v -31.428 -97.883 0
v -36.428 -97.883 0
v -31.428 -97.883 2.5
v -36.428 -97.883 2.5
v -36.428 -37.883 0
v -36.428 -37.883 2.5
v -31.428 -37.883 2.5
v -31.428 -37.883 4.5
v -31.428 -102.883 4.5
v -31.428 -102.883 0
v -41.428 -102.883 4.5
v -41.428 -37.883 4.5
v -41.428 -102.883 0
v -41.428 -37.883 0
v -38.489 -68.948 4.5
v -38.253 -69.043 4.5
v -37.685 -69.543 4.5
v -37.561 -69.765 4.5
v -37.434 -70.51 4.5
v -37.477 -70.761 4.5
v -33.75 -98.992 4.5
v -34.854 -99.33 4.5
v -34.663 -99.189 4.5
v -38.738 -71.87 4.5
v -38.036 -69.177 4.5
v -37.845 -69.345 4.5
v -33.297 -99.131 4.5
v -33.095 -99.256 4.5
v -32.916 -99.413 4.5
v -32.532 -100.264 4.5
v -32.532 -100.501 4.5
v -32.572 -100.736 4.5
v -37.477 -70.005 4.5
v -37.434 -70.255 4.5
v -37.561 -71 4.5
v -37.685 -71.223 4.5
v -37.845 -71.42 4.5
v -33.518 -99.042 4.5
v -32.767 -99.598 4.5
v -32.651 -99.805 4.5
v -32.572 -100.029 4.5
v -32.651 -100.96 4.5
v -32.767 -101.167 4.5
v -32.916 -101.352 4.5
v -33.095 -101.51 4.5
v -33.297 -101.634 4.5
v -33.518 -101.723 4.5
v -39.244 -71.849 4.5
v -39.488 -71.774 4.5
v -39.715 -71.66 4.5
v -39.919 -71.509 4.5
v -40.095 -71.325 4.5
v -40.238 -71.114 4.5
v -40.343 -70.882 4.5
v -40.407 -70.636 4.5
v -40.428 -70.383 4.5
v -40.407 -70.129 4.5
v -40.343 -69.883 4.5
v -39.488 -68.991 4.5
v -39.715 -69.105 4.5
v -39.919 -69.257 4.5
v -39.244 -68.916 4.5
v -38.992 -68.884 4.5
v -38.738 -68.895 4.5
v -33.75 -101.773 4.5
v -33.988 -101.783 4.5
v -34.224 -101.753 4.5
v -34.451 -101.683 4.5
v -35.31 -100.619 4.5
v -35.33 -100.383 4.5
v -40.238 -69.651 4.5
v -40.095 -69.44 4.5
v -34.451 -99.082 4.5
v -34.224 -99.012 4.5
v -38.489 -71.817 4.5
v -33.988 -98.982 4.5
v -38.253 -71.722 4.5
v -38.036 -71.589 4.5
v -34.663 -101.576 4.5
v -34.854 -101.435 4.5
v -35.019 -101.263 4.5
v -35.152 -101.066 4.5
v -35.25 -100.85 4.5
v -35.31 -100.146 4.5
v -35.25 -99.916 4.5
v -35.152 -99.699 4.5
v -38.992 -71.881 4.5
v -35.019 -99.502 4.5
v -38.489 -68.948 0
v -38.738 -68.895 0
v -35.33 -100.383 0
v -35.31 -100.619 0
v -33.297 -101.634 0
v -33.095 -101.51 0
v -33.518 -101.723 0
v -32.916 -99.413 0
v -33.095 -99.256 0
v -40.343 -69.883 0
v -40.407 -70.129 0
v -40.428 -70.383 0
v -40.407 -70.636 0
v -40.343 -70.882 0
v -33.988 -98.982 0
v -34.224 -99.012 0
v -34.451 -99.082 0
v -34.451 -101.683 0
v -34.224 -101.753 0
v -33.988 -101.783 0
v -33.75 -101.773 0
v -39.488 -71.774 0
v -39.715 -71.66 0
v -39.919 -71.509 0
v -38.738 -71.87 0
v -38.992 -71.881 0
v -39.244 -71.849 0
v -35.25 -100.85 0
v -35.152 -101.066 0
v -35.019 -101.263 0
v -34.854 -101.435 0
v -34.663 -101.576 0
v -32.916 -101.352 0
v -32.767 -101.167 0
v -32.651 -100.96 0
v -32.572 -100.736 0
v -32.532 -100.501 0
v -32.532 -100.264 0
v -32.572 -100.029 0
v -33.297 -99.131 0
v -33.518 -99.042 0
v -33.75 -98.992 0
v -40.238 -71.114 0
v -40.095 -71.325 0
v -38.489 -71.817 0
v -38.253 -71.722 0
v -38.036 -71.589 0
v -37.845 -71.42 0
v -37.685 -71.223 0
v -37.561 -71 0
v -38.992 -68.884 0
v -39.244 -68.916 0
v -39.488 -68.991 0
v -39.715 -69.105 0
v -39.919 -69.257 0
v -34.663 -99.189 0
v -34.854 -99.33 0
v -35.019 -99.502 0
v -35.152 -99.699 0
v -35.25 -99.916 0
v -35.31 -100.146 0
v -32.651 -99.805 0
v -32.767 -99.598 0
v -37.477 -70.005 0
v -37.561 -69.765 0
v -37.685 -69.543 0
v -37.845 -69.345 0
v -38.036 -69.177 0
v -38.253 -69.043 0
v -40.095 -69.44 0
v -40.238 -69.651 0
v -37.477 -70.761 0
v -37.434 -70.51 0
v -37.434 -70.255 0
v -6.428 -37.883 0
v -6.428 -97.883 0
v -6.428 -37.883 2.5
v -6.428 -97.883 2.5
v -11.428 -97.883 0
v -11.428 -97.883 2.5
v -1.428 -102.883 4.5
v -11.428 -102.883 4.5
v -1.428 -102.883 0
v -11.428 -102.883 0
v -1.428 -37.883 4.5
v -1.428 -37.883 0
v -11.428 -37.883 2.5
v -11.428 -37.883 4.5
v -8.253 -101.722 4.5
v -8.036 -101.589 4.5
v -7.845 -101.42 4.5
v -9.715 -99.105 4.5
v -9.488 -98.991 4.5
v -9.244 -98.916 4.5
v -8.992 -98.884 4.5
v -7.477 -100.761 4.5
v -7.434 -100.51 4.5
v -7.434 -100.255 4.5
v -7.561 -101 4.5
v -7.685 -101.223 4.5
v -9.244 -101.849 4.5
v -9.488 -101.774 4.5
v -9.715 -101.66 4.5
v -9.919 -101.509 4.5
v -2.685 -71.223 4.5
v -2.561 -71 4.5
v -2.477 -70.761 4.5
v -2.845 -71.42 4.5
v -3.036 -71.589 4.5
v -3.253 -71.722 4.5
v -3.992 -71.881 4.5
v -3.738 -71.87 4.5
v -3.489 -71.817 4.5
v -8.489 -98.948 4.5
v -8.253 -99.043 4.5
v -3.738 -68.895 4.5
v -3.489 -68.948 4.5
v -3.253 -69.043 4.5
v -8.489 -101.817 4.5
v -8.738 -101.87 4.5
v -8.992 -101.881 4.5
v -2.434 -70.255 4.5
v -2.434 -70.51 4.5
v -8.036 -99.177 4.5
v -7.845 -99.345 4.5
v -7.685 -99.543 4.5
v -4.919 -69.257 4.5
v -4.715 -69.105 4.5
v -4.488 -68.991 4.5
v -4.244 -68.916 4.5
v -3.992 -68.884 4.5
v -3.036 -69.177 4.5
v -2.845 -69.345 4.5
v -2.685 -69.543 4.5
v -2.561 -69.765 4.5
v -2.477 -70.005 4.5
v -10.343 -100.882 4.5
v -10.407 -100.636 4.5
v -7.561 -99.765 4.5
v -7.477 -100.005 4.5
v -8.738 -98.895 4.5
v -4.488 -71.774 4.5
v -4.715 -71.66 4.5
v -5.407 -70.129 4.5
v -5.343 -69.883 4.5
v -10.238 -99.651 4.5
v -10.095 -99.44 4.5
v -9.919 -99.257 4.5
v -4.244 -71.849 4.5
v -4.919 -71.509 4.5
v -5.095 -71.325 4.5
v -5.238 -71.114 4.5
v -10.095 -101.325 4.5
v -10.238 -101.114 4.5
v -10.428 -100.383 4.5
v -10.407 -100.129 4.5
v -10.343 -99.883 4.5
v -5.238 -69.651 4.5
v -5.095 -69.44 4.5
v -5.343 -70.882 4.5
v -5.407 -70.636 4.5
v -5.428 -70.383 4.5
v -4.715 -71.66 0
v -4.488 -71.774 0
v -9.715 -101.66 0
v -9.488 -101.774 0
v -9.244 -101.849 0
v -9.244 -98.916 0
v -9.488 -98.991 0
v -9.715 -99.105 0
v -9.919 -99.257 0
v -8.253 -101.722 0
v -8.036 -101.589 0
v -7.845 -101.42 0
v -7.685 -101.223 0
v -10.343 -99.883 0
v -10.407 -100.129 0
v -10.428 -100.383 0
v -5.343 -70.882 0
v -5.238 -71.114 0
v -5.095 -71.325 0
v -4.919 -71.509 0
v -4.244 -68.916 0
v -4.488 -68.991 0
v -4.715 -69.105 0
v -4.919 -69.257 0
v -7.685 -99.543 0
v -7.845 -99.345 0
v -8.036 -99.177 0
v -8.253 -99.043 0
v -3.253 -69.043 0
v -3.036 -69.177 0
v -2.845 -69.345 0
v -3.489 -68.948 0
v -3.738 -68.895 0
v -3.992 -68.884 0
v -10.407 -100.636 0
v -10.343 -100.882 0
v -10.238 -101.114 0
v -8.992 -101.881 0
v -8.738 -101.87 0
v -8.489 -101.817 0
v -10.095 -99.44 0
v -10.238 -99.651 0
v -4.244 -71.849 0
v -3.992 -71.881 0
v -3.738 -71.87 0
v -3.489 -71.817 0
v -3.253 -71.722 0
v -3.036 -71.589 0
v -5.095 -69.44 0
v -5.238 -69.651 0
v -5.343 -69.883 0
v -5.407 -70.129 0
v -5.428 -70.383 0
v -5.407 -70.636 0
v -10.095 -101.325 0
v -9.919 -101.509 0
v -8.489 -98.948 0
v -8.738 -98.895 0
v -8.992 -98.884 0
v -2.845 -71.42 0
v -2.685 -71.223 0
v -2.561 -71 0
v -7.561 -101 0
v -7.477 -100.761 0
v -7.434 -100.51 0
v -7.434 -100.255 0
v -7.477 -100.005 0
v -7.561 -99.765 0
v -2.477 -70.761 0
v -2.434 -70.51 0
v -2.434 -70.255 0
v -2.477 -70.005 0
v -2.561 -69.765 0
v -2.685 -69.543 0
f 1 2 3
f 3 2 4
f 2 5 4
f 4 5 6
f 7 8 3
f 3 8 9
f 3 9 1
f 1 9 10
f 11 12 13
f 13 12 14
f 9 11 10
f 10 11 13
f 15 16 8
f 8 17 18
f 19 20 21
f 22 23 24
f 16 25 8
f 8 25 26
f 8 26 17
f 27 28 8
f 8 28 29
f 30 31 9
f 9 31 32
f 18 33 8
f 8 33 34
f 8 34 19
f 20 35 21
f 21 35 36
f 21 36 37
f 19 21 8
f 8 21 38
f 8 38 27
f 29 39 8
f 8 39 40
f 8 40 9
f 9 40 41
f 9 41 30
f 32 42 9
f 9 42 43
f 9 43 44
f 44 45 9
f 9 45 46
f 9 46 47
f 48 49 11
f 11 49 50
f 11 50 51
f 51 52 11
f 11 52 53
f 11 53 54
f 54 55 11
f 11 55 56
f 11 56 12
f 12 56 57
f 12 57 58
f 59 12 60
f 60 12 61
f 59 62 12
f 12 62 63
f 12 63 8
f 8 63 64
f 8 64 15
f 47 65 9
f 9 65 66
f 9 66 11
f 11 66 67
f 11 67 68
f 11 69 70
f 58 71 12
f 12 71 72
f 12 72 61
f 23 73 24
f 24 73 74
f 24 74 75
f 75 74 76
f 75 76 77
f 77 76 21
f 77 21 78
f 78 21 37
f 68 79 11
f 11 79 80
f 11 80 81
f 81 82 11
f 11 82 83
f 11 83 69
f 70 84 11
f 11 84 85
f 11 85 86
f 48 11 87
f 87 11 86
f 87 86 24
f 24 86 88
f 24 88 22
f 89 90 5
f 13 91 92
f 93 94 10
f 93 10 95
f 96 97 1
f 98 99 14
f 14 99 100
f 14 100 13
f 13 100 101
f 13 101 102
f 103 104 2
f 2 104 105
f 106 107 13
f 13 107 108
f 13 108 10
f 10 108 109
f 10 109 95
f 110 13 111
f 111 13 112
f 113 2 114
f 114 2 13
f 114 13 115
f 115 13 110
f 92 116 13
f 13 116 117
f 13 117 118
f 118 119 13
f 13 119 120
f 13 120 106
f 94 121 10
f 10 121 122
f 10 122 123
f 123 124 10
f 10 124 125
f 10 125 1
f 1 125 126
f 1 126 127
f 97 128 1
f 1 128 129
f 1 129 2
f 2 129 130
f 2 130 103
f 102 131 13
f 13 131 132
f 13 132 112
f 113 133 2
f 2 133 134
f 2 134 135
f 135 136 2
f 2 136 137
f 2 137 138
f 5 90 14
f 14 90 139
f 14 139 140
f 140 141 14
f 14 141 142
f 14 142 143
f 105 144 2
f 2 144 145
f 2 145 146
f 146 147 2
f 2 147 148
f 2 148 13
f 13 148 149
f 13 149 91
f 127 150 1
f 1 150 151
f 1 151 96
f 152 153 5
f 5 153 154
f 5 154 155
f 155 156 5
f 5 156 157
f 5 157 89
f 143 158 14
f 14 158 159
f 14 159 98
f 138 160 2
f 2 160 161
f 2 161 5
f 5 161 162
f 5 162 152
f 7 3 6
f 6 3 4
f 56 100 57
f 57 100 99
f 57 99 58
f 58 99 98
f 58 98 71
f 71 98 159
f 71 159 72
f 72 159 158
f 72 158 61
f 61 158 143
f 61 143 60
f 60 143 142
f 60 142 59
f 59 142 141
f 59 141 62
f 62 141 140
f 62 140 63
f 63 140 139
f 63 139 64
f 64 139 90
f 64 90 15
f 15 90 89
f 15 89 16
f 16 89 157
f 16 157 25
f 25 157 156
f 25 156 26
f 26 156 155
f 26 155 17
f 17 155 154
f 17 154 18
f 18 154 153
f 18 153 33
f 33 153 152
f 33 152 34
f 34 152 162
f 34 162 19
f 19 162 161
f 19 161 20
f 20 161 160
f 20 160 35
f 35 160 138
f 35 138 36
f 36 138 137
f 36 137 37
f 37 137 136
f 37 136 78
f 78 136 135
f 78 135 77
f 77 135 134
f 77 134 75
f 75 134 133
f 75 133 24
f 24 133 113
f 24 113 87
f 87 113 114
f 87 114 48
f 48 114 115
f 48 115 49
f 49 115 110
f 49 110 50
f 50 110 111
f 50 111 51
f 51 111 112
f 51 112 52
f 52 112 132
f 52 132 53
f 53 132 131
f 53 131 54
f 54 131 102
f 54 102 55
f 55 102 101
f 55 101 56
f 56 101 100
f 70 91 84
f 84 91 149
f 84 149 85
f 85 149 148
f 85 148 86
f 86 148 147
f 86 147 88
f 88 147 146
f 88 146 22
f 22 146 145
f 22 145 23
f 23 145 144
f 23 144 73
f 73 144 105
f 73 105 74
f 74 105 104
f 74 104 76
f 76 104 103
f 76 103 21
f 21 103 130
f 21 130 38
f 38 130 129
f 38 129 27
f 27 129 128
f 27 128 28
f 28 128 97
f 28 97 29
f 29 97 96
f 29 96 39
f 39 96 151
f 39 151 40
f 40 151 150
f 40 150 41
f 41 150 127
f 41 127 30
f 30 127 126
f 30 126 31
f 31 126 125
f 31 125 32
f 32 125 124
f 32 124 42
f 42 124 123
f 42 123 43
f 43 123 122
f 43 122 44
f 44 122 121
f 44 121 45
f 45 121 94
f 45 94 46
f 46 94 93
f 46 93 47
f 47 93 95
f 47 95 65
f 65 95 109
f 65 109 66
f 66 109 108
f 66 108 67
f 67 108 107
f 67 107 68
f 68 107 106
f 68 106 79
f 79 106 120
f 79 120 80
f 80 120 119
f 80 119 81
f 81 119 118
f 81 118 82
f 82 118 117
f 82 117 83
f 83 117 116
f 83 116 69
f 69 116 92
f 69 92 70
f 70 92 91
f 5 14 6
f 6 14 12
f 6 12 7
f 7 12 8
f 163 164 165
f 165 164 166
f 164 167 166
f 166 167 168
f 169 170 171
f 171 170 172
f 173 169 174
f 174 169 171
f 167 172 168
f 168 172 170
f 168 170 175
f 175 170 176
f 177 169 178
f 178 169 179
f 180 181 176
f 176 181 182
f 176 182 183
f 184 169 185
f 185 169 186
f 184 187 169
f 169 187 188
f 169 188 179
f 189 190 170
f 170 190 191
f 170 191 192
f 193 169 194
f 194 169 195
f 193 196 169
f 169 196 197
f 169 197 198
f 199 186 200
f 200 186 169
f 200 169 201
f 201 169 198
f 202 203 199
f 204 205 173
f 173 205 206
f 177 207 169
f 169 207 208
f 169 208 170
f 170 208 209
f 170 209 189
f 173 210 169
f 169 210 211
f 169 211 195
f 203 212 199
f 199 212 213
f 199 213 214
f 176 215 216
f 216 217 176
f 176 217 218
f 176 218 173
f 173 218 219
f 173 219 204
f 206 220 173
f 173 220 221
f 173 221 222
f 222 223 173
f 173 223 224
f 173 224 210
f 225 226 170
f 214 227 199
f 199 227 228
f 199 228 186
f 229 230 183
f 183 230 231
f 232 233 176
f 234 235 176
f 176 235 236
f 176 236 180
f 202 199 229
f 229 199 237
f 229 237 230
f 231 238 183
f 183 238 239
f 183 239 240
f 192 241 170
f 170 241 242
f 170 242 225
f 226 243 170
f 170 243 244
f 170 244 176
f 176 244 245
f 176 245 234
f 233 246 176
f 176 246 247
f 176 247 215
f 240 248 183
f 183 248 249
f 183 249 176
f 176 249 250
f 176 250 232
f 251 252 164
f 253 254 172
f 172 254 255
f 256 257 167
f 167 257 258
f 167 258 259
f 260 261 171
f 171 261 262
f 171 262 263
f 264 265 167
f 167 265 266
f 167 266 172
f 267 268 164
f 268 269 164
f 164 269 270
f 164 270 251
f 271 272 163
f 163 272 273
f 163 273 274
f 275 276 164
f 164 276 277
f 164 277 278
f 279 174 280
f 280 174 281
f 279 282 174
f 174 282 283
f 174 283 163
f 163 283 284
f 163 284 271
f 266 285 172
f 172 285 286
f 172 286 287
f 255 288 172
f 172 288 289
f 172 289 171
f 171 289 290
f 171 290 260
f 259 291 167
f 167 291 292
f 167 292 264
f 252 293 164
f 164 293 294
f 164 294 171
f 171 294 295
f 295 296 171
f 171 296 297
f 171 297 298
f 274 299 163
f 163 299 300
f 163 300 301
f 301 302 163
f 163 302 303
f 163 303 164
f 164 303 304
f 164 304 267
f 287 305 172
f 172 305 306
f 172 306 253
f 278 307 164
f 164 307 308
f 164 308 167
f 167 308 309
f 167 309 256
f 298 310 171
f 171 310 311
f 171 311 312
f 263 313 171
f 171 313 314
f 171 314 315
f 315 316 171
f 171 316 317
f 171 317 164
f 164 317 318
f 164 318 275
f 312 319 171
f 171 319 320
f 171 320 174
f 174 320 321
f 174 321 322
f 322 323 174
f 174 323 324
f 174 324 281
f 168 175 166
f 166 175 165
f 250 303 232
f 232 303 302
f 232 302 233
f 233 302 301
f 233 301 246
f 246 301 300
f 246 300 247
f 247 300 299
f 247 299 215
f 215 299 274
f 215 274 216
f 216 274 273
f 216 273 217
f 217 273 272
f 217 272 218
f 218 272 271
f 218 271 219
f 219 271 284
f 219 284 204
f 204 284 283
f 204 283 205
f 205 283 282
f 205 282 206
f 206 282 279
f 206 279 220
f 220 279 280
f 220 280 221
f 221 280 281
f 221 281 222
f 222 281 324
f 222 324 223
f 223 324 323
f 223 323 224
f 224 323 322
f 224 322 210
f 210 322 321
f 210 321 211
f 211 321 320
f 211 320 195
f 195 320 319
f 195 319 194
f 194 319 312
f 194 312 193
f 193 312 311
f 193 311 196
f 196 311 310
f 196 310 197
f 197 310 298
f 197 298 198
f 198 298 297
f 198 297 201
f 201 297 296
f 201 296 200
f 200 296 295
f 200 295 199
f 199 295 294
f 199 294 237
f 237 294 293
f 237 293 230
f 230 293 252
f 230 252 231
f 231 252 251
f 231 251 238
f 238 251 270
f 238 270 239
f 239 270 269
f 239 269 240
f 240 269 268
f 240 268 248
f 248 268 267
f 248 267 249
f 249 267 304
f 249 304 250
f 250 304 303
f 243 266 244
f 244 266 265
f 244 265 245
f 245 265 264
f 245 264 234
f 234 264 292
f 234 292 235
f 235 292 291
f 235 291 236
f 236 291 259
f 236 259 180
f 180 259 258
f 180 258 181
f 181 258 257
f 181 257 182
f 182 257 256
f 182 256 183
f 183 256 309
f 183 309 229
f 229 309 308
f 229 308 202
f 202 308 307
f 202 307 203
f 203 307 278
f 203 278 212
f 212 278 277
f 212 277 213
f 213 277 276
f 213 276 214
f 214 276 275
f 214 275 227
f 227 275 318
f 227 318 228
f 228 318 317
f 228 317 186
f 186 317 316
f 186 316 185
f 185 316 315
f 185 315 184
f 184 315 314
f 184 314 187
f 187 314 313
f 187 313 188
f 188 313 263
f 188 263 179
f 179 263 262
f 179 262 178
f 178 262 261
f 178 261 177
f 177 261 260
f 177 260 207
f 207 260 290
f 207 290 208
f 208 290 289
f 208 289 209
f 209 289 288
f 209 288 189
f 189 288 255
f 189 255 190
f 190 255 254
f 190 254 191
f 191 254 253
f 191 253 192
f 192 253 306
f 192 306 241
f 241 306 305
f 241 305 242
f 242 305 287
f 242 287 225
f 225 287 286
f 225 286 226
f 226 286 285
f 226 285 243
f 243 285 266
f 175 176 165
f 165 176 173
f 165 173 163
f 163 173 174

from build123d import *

# Parameters (mm, degrees)
BOSS_EXTRUDE1_DEPTH   = 4.5
BOSS_EXTRUDE1_2_DEPTH = 4.5
SKETCH2_W             = 2
SKETCH2_H             = 30
BOSS_EXTRUDE2_DEPTH   = 5
SKETCH3_W             = 2
SKETCH3_H             = 30
BOSS_EXTRUDE3_DEPTH   = 5
SKETCH4_R             = 1.401658719
SKETCH4_R_2           = 1.5
CUT_EXTRUDE1_DEPTH    = 5.5
SKETCH5_R             = 1.5
CUT_EXTRUDE2_DEPTH    = 5.5
BOSS_EXTRUDE4_DEPTH   = 30
BOSS_EXTRUDE5_DEPTH   = 30


with BuildPart() as part:
    # Sketch1 → Boss-Extrude1 (new body)
    with BuildSketch(Plane.XY):
        Polygon((-36.428241885, -97.882571264), (-36.428241885, -72.882571264), (-36.428241885, -67.882571264), (-41.428241885, -67.882571264), (-41.428241885, -72.882571264), (-41.428241885, -102.882571264), (-36.428241885, -102.882571264), (-31.428241885, -102.882571264), (-31.428241885, -97.882571264), align=None)
    extrude(amount=BOSS_EXTRUDE1_DEPTH)

    # Sketch3 → Boss-Extrude3 (add)
    with BuildSketch(Plane(origin=(-36.428241885, 0, 0), x_dir=(0, 0, -1), z_dir=(1, 0, 0))):
        with Locations((-3.5, -82.882571264)):
            Rectangle(SKETCH3_W, SKETCH3_H)
    extrude(amount=BOSS_EXTRUDE3_DEPTH)

    # Sketch4 → Cut-Extrude1 (cut, through all)
    with BuildSketch(Plane(origin=(0, 0, 0), x_dir=(-1, 0, 0), z_dir=(0, 0, -1))):
        with Locations((33.928241885, -100.382571264)):
            Circle(SKETCH4_R)
        with Locations((38.928241885, -70.382571264)):
            Circle(SKETCH4_R_2)
    extrude(amount=-CUT_EXTRUDE1_DEPTH, mode=Mode.SUBTRACT)

    # Sketch6 → Boss-Extrude4 (add)
    with BuildSketch(Plane(origin=(0, -67.882571264, 0), x_dir=(1, 0, 0), z_dir=(0, 1, 0))):
        Polygon((-36.428241885, 0), (-41.428241885, 0), (-41.428241885, -4.5), (-31.428241885, -4.5), (-31.428241885, -2.5), (-36.428241885, -2.5), align=None)
    extrude(amount=BOSS_EXTRUDE4_DEPTH)


with BuildPart() as body_2:
    # Sketch1 → Boss-Extrude1 2 (new body)
    with BuildSketch(Plane.XY):
        Polygon((-6.428241885, -97.882571264), (-6.428241885, -72.882571264), (-6.428241885, -67.882571264), (-1.428241885, -67.882571264), (-1.428241885, -72.882571264), (-1.428241885, -102.882571264), (-6.428241885, -102.882571264), (-11.428241885, -102.882571264), (-11.428241885, -97.882571264), align=None)
    extrude(amount=BOSS_EXTRUDE1_2_DEPTH)

    # Sketch2 → Boss-Extrude2 (add)
    with BuildSketch(Plane.ZY.offset(6.428241885)):
        with Locations((3.5, -82.882571264)):
            Rectangle(SKETCH2_W, SKETCH2_H)
    extrude(amount=BOSS_EXTRUDE2_DEPTH)

    # Sketch5 → Cut-Extrude2 (cut, through all)
    with BuildSketch(Plane(origin=(0, 0, 0), x_dir=(-1, 0, 0), z_dir=(0, 0, -1))):
        with Locations((8.928241885, -100.382571264)):
            Circle(SKETCH5_R)
        with Locations((3.928241885, -70.382571264)):
            Circle(SKETCH5_R)
    extrude(amount=-CUT_EXTRUDE2_DEPTH, mode=Mode.SUBTRACT)

    # Sketch7 → Boss-Extrude5 (add)
    with BuildSketch(Plane(origin=(0, -67.882571264, 0), x_dir=(1, 0, 0), z_dir=(0, 1, 0))):
        Polygon((-1.428241885, 0), (-6.428241885, 0), (-6.428241885, -2.5), (-11.428241885, -2.5), (-11.428241885, -4.5), (-1.428241885, -4.5), align=None)
    extrude(amount=BOSS_EXTRUDE5_DEPTH)


solid = Compound([part.part, body_2.part])
